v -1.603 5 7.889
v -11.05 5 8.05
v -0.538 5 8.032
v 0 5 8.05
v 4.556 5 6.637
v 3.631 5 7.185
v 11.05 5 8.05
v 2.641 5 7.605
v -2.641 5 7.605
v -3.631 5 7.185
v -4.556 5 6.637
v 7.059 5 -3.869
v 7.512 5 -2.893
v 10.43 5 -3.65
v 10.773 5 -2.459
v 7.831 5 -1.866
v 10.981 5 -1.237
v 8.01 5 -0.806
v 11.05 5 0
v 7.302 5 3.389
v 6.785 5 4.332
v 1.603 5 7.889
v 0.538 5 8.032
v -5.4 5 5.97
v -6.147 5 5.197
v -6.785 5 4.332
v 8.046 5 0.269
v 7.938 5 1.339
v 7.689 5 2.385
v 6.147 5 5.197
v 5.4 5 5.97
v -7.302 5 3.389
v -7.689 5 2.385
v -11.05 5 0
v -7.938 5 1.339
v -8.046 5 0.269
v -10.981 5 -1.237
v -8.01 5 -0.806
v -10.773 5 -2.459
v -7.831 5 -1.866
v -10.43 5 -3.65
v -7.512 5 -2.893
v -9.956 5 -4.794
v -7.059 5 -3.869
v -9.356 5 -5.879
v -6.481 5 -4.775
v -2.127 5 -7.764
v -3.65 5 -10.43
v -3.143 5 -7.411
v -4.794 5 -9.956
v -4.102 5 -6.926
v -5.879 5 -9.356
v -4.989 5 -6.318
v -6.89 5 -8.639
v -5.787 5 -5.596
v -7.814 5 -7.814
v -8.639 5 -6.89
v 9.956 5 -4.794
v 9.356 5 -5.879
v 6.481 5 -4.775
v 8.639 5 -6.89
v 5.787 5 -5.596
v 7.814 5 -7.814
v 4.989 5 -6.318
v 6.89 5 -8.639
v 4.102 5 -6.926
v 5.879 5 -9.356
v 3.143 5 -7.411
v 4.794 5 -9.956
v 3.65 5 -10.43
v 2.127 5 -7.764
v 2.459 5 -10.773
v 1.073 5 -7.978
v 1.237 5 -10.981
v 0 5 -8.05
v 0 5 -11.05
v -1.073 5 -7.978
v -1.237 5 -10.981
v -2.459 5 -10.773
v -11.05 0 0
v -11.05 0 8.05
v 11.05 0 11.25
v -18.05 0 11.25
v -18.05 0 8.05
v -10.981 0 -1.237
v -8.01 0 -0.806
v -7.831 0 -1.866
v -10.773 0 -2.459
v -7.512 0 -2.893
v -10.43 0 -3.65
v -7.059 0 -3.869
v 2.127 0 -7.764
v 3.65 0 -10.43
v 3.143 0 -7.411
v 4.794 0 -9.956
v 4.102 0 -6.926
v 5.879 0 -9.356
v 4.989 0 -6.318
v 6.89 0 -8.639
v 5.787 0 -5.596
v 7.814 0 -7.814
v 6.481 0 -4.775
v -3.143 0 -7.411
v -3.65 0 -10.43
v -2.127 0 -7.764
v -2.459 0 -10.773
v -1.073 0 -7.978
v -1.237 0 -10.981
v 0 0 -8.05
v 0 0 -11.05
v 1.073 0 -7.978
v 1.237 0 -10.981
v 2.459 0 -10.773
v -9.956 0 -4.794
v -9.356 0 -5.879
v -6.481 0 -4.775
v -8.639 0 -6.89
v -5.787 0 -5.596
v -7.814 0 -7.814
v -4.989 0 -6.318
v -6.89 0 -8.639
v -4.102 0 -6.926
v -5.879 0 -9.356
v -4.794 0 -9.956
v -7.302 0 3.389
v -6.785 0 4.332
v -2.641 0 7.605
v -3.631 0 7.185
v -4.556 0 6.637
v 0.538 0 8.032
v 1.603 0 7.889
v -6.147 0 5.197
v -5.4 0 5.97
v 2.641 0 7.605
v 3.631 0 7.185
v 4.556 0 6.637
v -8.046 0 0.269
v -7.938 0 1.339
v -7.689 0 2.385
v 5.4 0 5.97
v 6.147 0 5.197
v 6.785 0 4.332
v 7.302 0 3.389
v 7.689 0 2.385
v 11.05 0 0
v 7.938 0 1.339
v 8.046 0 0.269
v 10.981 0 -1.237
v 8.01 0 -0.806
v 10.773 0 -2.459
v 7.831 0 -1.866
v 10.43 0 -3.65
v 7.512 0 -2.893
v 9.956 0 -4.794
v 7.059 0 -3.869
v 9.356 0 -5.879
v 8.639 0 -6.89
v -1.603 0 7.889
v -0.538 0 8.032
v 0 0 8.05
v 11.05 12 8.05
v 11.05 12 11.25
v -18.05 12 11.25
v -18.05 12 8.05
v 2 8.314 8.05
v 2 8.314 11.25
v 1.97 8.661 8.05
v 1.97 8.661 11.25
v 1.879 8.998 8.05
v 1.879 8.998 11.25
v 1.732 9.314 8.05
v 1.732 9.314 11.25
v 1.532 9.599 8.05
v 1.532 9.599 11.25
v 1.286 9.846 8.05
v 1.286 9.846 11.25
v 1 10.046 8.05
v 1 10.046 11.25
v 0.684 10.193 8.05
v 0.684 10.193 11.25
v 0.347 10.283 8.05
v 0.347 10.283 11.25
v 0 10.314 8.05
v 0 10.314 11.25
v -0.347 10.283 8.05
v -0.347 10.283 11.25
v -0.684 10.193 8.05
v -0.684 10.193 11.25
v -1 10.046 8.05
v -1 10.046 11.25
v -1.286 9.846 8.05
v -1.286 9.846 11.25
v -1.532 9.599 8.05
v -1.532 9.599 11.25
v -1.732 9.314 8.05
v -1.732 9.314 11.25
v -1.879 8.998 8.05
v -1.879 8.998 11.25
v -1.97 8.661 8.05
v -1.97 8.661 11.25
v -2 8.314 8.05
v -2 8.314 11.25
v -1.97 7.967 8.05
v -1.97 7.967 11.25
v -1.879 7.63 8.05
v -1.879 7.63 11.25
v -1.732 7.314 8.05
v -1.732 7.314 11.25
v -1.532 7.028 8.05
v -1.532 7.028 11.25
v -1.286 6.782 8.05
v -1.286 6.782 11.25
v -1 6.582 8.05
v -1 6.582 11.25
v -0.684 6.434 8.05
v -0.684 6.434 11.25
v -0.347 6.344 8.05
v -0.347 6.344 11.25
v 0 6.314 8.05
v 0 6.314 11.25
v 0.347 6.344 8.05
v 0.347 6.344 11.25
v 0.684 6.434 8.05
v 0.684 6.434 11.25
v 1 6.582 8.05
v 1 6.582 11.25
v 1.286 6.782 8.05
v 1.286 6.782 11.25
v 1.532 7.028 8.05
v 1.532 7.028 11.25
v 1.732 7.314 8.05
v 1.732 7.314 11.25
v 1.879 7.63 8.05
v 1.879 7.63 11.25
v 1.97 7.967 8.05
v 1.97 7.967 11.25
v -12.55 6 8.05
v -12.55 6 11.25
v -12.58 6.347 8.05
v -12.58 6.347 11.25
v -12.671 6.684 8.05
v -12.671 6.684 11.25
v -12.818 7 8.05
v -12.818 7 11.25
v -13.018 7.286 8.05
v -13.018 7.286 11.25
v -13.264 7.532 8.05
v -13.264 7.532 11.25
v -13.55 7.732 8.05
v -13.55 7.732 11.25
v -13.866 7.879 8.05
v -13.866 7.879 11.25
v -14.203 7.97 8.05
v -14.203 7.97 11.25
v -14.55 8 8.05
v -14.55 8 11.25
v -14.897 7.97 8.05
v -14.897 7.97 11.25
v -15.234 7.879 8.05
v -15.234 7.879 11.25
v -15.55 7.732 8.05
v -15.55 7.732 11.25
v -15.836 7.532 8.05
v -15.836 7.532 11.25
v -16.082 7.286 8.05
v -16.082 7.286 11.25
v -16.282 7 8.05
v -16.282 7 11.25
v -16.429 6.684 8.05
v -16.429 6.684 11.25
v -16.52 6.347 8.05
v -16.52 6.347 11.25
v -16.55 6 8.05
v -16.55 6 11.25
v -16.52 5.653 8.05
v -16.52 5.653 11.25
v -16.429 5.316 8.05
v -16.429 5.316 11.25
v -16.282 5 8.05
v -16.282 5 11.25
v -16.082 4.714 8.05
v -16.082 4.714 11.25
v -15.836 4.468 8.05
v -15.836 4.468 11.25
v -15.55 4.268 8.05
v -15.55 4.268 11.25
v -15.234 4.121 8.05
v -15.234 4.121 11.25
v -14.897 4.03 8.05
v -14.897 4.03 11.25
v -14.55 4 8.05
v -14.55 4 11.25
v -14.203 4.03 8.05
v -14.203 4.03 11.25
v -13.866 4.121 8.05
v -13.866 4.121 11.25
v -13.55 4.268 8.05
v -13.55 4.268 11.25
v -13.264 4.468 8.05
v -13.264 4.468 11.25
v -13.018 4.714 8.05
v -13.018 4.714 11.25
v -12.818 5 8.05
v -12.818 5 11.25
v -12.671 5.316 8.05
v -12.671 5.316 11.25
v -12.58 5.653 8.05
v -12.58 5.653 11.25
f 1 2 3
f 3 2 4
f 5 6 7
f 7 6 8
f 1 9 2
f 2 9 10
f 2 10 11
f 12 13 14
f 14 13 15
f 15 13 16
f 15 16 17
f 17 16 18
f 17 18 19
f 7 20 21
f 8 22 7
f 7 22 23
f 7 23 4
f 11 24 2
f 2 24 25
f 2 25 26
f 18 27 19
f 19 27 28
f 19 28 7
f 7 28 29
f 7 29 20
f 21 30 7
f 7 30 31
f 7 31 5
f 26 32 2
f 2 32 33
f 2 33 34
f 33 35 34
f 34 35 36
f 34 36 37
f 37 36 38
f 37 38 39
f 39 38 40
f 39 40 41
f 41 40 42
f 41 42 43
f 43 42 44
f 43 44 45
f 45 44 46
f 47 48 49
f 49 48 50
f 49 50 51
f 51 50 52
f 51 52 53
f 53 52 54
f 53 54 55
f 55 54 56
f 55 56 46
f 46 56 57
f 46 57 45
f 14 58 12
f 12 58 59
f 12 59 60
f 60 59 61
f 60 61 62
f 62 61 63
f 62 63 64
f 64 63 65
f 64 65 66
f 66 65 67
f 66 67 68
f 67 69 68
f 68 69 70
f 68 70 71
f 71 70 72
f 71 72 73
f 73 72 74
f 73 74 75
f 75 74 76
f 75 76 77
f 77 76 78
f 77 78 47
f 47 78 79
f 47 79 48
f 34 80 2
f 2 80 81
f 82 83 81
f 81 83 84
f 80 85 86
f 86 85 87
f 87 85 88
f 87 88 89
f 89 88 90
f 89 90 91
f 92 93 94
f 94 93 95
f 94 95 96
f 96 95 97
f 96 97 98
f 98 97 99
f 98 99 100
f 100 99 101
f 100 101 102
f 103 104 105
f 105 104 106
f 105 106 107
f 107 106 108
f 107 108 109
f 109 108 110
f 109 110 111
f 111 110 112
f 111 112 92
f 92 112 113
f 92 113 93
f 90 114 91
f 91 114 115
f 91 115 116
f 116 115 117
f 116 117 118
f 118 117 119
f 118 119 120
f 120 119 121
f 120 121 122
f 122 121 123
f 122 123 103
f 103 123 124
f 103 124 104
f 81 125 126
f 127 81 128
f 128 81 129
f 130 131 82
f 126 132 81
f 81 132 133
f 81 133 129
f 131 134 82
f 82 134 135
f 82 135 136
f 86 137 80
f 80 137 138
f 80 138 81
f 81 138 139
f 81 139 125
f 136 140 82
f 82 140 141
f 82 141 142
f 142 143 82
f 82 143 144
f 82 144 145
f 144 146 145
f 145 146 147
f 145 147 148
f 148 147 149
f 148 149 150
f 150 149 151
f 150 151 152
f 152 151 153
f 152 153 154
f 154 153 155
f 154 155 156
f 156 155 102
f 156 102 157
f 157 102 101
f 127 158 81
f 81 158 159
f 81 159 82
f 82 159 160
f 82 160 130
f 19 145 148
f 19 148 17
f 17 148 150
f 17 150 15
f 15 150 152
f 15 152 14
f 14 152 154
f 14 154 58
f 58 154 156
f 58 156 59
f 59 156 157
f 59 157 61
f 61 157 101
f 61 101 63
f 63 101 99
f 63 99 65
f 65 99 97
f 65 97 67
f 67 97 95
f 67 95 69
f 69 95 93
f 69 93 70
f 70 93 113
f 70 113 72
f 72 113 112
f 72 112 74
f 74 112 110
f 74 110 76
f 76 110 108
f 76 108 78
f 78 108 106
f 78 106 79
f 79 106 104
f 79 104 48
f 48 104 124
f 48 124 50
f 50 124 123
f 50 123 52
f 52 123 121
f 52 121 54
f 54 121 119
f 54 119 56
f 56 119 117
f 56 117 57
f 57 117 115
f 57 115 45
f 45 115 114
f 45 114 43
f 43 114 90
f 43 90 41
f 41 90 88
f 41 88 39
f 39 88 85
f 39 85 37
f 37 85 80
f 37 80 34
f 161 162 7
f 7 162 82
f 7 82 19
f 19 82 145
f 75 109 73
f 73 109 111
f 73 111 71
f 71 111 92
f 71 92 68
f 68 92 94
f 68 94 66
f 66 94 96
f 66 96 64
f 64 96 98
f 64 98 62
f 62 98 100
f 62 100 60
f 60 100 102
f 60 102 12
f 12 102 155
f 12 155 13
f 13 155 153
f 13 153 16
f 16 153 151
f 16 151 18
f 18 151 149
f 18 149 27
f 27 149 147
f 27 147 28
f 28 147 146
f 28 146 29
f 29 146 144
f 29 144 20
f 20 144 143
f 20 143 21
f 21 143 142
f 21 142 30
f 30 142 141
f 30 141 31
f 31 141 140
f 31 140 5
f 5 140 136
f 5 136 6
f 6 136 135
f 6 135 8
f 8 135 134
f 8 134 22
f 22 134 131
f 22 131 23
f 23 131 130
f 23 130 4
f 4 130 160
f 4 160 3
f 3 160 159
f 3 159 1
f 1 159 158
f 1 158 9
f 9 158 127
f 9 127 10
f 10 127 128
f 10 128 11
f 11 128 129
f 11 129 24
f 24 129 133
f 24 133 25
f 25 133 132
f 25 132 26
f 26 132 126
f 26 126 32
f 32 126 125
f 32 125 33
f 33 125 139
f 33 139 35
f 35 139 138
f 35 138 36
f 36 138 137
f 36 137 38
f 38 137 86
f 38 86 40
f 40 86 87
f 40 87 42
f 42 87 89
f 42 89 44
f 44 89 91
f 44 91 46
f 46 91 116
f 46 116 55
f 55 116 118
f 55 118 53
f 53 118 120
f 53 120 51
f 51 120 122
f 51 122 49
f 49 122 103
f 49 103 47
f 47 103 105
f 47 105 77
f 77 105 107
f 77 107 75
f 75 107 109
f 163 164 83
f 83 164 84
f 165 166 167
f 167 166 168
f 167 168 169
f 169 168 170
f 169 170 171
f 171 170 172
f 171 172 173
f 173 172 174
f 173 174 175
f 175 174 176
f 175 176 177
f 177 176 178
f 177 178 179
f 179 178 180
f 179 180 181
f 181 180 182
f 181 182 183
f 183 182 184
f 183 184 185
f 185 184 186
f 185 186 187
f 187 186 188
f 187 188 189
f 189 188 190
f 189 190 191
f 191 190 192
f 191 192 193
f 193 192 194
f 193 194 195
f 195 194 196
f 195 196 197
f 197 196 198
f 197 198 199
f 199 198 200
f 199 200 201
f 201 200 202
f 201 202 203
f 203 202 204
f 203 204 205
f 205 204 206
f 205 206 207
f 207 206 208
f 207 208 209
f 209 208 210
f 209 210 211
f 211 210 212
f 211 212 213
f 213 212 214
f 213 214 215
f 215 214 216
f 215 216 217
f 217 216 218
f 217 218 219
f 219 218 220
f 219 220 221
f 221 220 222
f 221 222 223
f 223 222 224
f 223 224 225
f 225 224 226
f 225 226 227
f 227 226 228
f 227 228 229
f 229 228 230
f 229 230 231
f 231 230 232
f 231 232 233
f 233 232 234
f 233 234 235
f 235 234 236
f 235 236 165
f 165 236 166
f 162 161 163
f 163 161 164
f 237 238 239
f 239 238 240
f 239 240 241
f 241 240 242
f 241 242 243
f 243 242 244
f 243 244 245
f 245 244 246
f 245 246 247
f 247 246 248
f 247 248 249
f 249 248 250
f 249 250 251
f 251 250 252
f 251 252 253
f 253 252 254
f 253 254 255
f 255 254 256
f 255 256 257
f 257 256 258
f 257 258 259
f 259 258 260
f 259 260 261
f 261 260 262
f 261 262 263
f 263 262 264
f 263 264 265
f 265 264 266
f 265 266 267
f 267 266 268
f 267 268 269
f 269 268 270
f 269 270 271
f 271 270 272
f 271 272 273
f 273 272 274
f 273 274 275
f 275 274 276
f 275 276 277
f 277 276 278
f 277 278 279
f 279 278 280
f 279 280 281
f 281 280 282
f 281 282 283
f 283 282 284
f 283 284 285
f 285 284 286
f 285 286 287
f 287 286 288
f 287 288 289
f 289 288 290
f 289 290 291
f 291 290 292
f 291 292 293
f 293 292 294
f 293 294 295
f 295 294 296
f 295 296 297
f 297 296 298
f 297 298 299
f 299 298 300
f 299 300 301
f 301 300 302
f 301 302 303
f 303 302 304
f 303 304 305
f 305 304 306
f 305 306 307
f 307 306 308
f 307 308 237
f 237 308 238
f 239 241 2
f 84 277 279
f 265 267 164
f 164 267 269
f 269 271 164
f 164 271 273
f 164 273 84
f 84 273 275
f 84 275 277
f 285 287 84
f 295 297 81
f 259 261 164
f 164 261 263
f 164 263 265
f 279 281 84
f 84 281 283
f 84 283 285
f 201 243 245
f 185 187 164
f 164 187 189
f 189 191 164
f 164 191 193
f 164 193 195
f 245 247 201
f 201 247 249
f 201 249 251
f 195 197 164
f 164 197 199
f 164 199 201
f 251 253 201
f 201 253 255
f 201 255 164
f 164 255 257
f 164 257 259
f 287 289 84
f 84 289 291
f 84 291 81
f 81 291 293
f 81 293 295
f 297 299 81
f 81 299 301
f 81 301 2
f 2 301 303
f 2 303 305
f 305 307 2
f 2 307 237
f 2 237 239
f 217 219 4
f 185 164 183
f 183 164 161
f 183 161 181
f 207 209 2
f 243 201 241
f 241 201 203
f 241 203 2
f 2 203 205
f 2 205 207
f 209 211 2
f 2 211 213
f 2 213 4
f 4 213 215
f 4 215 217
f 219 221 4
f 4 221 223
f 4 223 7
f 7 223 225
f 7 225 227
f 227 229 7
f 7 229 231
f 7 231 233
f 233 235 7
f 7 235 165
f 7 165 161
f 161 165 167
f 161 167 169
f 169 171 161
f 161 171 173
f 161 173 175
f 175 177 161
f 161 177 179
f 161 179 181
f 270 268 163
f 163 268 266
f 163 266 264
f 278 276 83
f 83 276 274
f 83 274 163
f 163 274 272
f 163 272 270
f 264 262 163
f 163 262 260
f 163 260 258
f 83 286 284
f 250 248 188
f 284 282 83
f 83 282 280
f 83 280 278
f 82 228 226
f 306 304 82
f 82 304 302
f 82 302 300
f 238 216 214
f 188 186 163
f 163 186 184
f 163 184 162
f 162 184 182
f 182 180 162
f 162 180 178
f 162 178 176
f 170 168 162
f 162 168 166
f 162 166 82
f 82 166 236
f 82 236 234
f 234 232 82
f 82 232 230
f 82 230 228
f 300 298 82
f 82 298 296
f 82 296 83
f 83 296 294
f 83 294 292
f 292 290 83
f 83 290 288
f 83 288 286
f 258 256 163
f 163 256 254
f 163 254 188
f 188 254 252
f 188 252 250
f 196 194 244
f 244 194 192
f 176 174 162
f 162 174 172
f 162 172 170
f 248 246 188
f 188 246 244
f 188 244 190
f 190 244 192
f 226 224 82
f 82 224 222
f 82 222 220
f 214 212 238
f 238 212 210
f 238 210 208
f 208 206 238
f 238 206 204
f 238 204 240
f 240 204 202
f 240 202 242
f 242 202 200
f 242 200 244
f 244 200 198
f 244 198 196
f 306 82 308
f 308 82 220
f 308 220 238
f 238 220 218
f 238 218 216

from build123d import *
from build123d.topology import SkipClean

# Parameters (mm, degrees)
SKETCH1_R           = 8.05
BOSS_EXTRUDE1_DEPTH = 5
BOSS_EXTRUDE2_DEPTH = 3
BOSS_EXTRUDE3_START = 0.2
SKETCH4_W           = 29.1
SKETCH4_H           = 12
SKETCH4_R           = 2
BOSS_EXTRUDE3_DEPTH = 0.2


with BuildPart() as part:
    # Sketch1 → Boss-Extrude1 (new body)
    with BuildSketch(Plane(origin=(0, 0, 0), x_dir=(1, 0, 0), z_dir=(0, 1, 0))):
        with BuildLine():
            Line((11.05, 0), (11.05, -11.05))
            Line((11.05, -11.05), (0, -11.05))
            Line((0, -11.05), (-11.05, -11.05))
            Line((-11.05, -11.05), (-11.05, 0))
            ThreePointArc((-11.05, 0), (0, 11.05), (11.05, 0))
        make_face()
        with Locations(Location((0, 0, 0), (0, 0, 270))):
            Circle(SKETCH1_R, mode=Mode.SUBTRACT)
    extrude(amount=BOSS_EXTRUDE1_DEPTH)

    # Sketch2 → Boss-Extrude2 (add)
    with BuildSketch(Plane.XY.offset(11.05)):
        with BuildLine():
            Line((-11.05, 0), (-11.05, 5))
            Line((-11.05, 5), (-11.05, 6))
            Line((-11.05, 6), (-12.55, 6))
            ThreePointArc((-12.55, 6), (-14.55, 4), (-16.55, 6))
            Line((-16.55, 6), (-18.05, 6))
            Line((-18.05, 6), (-18.05, 0))
            Line((-18.05, 0), (-11.05, 0))
        make_face()
        with BuildLine():
            Line((-12.55, 6), (-11.05, 6))
            Line((-11.05, 6), (-11.05, 12))
            Line((-11.05, 12), (-18.05, 12))
            Line((-18.05, 12), (-18.05, 6))
            Line((-18.05, 6), (-16.55, 6))
            ThreePointArc((-16.55, 6), (-14.55, 8), (-12.55, 6))
        make_face()
        with BuildLine():
            Line((-11.05, 5), (0, 5))
            Line((0, 5), (0, 6.313879641))
            ThreePointArc((0, 6.313879641), (-2, 8.313879641), (0, 10.313879641))
            Line((0, 10.313879641), (0, 12))
            Line((0, 12), (-11.05, 12))
            Line((-11.05, 12), (-11.05, 6))
            Line((-11.05, 6), (-11.05, 5))
        make_face()
        with BuildLine():
            Line((0, 6.313879641), (0, 5))
            Line((0, 5), (11.05, 5))
            Line((11.05, 5), (11.05, 12))
            Line((11.05, 12), (0, 12))
            Line((0, 12), (0, 10.313879641))
            ThreePointArc((0, 10.313879641), (1.414213562, 9.728093204), (2, 8.313879641))
            ThreePointArc((2, 8.313879641), (1.414213562, 6.899666079), (0, 6.313879641))
        make_face()
    extrude(amount=-BOSS_EXTRUDE2_DEPTH)

    # Sketch4 → Boss-Extrude3 (add)
    with SkipClean():  # the faces are left unmerged after this step: merging them gives an invalid solid
        with BuildSketch(Plane.XY.offset(11.05).offset(BOSS_EXTRUDE3_START)):
            with Locations((-3.5, 6)):
                Rectangle(SKETCH4_W, SKETCH4_H)
            with Locations((0, 8.313879641)):
                Circle(SKETCH4_R, mode=Mode.SUBTRACT)
            with Locations((-14.55, 6)):
                Circle(SKETCH4_R, mode=Mode.SUBTRACT)
        extrude(amount=-BOSS_EXTRUDE3_DEPTH)


solid = part.part
